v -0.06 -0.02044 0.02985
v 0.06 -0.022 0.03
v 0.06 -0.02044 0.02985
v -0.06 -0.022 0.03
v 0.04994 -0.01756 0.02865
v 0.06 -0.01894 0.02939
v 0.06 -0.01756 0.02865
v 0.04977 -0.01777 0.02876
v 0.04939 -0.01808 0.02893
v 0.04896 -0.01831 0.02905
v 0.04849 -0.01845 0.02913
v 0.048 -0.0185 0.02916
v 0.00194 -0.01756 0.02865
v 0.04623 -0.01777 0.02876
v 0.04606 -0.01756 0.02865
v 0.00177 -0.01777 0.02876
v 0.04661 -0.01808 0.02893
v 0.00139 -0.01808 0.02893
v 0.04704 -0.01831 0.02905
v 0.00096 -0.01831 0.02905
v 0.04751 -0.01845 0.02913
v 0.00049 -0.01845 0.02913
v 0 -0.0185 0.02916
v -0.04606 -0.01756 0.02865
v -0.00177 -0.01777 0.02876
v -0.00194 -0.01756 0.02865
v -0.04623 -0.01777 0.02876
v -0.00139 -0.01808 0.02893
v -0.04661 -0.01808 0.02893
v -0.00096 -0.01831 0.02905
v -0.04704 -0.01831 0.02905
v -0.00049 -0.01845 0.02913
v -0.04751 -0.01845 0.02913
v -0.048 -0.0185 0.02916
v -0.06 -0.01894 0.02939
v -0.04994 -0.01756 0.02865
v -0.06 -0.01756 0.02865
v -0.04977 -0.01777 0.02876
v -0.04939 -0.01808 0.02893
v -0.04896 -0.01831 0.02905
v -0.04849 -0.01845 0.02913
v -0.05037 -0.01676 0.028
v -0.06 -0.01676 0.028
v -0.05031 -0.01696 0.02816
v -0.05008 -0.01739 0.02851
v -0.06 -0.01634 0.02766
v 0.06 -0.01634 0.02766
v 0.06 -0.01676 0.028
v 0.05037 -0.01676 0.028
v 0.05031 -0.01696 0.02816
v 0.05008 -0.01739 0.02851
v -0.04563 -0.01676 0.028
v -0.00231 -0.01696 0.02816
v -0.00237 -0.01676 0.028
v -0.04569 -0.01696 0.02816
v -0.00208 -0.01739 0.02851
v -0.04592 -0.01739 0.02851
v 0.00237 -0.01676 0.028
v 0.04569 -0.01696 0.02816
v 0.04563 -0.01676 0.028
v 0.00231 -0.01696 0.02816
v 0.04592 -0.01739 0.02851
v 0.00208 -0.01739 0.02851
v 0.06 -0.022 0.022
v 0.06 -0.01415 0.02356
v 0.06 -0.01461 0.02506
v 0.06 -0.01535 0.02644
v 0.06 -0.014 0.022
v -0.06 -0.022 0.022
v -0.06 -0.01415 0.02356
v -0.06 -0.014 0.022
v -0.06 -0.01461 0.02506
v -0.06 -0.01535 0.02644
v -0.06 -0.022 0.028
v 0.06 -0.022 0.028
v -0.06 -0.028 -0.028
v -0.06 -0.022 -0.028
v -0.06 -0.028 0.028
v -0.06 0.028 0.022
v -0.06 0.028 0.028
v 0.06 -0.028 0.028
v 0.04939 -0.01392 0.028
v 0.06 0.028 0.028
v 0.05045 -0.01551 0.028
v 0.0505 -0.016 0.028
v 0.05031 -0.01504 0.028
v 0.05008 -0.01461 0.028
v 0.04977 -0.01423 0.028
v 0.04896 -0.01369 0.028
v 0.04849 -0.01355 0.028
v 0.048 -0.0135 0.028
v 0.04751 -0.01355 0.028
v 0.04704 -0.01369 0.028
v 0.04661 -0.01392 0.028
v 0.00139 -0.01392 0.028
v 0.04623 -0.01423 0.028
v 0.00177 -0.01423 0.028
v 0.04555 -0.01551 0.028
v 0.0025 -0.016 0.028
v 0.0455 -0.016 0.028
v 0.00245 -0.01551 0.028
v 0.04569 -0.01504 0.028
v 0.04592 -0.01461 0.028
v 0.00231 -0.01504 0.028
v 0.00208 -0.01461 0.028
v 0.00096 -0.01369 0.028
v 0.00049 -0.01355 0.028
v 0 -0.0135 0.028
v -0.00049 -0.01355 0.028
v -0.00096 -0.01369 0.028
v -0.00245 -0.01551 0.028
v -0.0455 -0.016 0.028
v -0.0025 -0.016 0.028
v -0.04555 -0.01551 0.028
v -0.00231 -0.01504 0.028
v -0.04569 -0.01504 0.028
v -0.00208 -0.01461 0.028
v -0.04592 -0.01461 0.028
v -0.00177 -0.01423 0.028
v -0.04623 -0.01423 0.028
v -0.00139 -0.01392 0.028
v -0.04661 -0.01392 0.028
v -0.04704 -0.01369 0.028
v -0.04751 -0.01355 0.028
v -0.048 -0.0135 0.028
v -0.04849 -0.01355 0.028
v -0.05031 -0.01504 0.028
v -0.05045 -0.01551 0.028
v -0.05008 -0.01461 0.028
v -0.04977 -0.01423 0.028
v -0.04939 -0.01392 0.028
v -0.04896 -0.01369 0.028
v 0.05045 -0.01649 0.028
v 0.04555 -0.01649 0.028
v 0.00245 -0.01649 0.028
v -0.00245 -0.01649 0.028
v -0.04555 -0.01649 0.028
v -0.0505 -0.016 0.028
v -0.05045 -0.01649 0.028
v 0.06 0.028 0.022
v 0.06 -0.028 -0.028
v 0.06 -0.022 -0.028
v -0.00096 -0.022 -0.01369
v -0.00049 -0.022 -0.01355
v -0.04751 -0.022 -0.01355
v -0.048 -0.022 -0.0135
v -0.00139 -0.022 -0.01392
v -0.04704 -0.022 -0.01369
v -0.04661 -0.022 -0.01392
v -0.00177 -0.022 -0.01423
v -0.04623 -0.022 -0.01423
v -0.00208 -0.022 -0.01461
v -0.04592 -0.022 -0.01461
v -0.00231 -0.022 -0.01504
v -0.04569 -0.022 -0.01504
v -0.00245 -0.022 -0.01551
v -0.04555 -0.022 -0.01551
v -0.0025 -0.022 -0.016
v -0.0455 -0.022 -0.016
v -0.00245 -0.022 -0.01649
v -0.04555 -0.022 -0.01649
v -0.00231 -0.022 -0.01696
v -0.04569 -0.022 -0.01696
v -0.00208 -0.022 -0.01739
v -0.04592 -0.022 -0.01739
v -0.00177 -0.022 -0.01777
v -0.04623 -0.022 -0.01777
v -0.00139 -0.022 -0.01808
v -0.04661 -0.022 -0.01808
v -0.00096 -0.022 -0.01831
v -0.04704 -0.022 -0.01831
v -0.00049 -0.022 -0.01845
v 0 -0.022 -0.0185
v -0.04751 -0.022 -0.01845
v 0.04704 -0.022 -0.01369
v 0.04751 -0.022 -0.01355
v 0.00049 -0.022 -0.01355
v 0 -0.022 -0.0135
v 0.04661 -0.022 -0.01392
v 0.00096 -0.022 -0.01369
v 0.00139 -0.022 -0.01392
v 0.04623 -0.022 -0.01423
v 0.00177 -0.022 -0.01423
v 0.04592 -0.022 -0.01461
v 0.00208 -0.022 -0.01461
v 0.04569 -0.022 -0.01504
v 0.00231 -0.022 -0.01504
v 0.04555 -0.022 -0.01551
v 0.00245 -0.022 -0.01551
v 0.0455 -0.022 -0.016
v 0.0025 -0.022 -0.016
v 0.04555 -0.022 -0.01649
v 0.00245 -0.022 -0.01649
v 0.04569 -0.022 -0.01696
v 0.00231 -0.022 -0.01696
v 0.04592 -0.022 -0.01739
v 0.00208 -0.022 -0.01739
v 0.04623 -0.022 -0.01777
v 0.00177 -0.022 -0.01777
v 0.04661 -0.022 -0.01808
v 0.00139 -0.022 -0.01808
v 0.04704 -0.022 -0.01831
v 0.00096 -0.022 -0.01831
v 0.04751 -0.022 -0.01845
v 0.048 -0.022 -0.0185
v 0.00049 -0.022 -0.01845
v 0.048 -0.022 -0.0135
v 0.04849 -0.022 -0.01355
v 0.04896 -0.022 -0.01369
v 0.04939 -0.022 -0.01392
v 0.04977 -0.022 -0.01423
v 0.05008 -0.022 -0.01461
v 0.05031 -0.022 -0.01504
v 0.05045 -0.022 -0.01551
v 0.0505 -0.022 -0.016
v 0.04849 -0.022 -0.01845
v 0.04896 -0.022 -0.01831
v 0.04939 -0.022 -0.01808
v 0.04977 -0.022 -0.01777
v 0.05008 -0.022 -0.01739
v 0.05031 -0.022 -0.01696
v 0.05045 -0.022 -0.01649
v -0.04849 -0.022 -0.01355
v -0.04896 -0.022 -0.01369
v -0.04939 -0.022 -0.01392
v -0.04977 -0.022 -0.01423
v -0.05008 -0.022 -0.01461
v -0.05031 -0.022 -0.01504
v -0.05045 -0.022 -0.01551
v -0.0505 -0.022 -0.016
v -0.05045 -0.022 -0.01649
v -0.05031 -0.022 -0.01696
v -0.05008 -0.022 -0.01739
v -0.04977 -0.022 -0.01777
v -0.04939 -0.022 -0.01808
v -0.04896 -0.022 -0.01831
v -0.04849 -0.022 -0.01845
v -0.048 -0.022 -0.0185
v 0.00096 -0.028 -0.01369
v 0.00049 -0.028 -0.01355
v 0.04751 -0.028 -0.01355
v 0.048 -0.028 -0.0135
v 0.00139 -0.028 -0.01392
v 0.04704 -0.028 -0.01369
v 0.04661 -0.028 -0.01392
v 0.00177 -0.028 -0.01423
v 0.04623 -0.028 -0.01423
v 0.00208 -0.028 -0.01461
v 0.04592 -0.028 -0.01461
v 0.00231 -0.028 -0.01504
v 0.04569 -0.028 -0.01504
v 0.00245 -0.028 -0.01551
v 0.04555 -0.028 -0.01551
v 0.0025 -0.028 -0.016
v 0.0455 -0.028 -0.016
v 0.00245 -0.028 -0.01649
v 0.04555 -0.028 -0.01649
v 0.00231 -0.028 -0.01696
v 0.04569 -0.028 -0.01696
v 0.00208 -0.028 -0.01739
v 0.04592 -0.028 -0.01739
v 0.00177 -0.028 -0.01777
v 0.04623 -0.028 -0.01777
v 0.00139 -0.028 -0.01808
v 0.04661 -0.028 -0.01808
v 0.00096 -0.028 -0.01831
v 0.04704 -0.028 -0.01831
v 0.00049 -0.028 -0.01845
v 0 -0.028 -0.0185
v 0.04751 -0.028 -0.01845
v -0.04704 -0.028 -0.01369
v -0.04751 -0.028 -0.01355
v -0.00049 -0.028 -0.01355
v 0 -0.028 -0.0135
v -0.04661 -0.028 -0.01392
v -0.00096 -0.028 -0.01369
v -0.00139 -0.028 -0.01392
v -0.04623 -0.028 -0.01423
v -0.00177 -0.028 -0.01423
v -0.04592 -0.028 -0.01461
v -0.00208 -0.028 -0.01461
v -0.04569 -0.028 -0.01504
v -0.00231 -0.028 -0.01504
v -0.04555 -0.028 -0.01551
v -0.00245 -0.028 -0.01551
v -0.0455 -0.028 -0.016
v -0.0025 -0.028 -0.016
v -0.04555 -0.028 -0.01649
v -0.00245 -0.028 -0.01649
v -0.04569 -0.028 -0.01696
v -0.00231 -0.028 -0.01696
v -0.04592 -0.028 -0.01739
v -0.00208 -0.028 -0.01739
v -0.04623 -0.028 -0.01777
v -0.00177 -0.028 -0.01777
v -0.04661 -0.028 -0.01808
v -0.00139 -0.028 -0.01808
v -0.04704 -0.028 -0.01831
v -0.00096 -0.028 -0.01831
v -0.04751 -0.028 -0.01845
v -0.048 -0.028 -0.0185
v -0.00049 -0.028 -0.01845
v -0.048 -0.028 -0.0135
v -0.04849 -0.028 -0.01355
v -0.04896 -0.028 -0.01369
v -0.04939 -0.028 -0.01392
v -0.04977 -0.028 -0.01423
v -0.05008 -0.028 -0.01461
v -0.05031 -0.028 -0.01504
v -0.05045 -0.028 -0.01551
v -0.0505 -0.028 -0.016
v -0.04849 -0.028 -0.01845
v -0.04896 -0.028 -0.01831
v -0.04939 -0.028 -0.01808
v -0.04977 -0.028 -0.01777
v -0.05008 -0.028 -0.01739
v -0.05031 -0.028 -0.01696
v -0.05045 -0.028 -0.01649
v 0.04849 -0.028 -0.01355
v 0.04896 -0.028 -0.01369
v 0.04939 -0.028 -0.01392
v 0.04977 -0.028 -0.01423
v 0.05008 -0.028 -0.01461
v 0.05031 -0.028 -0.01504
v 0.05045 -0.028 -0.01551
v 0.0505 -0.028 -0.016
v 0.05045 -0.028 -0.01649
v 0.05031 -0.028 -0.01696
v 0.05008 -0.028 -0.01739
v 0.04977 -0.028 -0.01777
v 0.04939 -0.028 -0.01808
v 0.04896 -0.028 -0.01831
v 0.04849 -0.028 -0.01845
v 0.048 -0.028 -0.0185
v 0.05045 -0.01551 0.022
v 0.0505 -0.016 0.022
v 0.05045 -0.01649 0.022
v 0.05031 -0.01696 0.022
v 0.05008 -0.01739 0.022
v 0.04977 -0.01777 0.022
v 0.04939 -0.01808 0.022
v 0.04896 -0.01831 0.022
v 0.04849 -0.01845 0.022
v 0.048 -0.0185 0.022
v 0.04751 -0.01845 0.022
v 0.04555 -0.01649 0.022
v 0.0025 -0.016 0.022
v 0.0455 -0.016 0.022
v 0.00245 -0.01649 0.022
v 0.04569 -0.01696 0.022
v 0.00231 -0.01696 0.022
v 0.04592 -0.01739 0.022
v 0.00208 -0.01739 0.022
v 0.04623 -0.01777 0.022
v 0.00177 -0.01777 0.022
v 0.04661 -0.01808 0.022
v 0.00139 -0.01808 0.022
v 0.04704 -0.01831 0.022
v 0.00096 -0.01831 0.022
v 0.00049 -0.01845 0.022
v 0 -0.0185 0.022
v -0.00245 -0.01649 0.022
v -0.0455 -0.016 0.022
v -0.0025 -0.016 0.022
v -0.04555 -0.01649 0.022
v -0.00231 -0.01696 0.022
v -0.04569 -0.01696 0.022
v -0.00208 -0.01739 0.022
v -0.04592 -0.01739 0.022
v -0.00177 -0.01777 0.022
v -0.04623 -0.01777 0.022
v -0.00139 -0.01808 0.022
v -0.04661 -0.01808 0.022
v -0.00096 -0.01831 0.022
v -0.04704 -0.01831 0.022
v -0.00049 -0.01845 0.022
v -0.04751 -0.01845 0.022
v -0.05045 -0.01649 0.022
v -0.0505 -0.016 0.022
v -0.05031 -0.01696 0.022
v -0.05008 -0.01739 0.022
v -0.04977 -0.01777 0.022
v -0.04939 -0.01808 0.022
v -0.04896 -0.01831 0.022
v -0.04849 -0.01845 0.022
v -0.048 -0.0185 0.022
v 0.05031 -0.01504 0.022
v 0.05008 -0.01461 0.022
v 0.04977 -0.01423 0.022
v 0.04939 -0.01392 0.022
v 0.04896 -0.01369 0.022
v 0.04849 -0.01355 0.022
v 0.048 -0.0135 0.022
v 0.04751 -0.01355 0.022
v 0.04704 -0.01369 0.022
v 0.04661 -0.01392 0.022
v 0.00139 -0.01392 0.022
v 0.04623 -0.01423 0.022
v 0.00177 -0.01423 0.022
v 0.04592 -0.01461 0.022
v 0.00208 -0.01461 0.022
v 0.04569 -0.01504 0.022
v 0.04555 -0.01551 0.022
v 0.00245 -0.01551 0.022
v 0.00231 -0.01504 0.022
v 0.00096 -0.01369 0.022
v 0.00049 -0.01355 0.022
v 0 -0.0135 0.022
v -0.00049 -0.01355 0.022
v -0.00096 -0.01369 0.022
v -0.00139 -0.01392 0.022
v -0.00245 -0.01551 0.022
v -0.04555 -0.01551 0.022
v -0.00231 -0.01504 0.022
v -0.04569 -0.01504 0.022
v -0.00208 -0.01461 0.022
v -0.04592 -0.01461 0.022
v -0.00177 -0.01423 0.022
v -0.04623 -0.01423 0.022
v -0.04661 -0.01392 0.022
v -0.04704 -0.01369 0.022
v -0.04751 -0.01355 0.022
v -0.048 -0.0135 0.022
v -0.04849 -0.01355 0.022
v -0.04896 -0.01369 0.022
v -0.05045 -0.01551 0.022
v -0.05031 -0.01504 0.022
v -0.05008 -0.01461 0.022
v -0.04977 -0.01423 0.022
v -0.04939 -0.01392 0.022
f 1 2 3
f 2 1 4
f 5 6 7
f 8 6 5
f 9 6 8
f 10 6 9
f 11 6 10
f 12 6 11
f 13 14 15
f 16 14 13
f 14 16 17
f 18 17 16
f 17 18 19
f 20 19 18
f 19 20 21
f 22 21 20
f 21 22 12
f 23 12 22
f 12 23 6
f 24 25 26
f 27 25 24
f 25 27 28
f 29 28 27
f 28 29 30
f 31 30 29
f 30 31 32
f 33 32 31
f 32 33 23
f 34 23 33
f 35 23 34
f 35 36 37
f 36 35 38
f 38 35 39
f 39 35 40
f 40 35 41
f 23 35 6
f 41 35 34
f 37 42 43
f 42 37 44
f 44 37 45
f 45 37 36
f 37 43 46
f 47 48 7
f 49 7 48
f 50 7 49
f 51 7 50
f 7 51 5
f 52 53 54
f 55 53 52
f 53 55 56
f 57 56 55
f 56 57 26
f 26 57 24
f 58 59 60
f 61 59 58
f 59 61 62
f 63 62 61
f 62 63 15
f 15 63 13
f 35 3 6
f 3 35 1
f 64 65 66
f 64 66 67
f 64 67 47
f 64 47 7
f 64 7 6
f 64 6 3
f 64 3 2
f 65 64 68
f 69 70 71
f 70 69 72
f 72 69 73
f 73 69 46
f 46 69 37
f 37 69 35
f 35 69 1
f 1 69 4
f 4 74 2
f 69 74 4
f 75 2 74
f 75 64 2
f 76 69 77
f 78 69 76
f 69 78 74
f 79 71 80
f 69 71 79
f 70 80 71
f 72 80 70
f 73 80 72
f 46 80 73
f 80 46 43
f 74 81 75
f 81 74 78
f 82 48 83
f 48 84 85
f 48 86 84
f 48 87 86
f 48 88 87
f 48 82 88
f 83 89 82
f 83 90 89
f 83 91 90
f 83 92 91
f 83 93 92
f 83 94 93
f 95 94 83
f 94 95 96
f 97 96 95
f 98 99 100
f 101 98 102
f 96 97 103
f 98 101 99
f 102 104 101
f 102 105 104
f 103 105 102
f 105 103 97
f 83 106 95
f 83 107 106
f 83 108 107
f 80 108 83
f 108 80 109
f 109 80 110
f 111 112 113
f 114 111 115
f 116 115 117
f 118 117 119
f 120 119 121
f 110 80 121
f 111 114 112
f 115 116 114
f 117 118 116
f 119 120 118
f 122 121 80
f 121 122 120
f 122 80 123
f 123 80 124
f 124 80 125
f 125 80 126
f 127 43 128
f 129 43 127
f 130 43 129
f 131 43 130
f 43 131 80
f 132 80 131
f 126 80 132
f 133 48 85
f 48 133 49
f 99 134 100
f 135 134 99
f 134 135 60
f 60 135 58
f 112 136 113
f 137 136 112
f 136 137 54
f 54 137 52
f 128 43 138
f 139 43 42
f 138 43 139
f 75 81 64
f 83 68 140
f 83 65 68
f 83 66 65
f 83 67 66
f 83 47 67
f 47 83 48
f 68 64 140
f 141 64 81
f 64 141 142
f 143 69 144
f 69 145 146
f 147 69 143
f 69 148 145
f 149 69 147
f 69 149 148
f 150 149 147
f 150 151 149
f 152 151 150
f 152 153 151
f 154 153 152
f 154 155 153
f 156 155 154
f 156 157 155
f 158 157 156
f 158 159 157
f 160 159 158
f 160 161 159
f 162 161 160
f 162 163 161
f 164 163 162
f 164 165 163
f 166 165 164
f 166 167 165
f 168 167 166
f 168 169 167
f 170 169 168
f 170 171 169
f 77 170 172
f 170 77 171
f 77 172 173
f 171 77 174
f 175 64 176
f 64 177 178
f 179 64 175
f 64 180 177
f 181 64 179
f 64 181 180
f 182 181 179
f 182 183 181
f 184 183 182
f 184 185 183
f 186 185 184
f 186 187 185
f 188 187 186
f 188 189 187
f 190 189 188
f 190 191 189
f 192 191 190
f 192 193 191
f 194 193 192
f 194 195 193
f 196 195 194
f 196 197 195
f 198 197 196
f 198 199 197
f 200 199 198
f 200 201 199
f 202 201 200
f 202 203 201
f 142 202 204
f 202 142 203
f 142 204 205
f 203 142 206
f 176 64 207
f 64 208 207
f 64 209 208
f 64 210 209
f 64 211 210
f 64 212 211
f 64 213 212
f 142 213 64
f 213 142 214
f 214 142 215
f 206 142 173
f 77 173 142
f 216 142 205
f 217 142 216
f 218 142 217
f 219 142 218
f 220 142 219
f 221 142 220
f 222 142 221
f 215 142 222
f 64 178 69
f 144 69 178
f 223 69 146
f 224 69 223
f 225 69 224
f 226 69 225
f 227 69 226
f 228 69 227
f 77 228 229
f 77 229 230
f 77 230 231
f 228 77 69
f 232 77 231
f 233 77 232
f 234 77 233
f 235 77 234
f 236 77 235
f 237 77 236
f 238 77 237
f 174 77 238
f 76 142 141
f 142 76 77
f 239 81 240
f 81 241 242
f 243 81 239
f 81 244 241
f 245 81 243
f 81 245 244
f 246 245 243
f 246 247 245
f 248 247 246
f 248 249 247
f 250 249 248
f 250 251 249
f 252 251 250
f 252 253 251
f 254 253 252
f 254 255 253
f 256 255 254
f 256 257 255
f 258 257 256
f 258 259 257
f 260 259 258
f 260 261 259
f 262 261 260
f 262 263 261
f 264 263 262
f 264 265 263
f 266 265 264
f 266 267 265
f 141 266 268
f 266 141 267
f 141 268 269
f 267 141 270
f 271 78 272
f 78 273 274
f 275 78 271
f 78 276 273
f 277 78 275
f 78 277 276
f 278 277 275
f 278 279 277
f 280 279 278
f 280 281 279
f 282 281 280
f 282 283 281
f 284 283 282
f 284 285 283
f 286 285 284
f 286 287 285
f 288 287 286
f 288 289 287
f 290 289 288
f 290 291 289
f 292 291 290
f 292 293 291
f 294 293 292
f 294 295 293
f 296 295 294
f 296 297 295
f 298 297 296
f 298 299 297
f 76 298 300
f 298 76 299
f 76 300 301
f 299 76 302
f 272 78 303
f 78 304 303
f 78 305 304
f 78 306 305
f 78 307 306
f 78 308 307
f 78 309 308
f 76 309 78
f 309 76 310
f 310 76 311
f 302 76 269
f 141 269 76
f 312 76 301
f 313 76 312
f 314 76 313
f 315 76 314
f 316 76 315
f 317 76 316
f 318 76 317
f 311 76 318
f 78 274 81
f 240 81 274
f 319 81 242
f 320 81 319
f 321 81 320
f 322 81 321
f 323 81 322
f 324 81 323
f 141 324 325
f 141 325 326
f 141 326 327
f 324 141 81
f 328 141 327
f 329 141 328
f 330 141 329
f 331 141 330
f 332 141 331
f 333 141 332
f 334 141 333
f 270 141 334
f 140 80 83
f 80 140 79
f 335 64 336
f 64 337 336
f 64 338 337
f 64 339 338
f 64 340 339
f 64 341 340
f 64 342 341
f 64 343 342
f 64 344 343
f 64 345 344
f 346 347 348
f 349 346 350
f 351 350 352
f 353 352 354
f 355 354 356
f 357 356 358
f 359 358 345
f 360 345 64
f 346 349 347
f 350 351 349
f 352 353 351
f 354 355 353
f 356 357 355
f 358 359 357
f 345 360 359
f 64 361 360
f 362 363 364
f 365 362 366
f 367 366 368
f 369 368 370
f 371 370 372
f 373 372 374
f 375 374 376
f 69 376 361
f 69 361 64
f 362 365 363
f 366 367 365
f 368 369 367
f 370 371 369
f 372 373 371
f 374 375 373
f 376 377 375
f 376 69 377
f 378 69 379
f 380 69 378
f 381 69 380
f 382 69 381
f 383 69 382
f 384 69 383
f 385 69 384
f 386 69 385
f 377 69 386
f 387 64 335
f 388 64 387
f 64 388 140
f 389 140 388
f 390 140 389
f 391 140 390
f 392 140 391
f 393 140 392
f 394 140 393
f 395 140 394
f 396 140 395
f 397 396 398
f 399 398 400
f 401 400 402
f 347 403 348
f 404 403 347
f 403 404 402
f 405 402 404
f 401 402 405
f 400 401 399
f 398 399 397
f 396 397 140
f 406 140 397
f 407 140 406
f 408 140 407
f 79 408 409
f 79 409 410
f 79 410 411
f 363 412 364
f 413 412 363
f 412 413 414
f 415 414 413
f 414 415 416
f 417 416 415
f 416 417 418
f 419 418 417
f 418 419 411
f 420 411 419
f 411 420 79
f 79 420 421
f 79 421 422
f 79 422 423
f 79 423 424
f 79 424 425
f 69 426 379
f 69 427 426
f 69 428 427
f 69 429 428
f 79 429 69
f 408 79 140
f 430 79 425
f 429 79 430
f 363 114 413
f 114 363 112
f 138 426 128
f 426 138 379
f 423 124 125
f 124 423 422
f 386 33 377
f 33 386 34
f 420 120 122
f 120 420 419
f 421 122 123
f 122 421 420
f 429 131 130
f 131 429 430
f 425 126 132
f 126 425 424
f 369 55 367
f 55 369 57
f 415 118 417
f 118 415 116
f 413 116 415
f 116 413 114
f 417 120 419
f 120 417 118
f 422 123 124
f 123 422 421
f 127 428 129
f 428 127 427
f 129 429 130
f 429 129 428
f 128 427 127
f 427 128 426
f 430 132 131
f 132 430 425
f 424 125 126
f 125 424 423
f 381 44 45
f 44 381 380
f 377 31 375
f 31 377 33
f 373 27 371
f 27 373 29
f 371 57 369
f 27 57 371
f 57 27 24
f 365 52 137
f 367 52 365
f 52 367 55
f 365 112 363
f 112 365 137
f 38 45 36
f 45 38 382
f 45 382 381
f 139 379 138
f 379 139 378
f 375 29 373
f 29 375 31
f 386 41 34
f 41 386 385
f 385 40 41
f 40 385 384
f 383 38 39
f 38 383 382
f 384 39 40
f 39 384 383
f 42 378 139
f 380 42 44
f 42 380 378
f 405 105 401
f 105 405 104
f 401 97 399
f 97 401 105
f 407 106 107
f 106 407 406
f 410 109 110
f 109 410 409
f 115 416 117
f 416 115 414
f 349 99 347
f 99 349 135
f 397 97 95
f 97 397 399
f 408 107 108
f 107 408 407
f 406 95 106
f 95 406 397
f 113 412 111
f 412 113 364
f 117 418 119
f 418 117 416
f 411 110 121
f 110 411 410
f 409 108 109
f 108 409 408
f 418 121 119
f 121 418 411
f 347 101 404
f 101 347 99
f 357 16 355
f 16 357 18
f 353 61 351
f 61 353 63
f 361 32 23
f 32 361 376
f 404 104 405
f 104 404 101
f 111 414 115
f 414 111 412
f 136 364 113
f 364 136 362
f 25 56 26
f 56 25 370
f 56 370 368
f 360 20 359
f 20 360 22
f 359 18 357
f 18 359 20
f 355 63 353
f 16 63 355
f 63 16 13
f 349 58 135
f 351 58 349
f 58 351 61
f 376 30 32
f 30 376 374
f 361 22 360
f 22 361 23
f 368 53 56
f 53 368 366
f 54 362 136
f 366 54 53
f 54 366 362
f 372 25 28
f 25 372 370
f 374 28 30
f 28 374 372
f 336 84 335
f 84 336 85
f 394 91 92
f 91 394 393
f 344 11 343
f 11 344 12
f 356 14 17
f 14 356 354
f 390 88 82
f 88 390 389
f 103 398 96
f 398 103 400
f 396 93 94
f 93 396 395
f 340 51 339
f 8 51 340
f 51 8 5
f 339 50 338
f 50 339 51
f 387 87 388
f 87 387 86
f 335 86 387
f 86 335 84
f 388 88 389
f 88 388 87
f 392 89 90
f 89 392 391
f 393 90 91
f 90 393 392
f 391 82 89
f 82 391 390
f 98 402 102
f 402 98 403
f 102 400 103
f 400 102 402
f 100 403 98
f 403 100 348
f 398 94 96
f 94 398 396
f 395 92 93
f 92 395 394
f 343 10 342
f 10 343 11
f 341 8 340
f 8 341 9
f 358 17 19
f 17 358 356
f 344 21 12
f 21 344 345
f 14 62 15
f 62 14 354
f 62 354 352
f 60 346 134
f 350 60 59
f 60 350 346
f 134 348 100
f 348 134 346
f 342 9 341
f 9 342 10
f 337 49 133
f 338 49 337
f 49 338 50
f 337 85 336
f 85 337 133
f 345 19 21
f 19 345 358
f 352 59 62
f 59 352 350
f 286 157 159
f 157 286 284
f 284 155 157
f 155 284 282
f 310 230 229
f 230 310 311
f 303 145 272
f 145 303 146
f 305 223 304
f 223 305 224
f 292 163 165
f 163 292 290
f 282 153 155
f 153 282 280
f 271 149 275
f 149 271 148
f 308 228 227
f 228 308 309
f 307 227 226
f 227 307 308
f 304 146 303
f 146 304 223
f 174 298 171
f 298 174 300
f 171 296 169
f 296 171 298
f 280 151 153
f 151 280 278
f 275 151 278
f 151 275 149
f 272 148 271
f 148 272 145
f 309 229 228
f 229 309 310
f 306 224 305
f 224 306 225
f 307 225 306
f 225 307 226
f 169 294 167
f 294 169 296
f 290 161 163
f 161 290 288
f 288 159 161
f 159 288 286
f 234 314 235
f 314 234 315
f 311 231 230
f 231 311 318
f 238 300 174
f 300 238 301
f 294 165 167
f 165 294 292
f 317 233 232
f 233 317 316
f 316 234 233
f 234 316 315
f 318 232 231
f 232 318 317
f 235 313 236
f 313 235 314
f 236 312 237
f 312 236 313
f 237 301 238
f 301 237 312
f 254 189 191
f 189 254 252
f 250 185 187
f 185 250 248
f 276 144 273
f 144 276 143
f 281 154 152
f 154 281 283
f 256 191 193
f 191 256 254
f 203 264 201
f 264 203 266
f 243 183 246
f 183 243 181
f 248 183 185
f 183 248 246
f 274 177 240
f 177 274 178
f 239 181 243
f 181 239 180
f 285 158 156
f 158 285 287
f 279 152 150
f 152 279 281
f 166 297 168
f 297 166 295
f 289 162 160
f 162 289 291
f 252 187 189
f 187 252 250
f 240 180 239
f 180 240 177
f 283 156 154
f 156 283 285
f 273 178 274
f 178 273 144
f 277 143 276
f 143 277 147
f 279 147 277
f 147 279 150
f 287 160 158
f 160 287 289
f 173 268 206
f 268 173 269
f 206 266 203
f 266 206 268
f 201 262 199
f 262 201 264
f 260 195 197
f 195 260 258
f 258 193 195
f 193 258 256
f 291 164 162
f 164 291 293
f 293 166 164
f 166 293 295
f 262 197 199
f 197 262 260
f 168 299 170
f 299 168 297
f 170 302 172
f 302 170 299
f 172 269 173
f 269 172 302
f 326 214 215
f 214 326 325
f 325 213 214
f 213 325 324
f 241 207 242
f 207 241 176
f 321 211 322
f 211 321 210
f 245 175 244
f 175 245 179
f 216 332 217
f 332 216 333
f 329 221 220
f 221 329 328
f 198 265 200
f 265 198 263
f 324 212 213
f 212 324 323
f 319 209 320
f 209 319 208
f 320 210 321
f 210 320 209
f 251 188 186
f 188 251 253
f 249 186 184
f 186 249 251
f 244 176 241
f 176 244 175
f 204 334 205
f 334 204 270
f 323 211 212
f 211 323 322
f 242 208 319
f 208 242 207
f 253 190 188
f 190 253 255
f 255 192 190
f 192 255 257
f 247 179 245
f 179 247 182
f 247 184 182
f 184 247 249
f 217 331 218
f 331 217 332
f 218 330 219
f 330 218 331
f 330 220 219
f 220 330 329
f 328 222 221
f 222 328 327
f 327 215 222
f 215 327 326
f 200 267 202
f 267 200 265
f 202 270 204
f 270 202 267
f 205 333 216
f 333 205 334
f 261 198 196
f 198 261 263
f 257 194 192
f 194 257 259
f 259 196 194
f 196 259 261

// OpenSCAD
// ── L-Shaped Mounting Bracket ──────────────────────────────────────────────
// Units: meters.  Origin centred on the bracket's bounding-box mid-point.
// +Y = up,  +Z = forward.

// ── Key parameters ─────────────────────────────────────────────────────────
width          = 0.12;    // overall width (X)  – ~12 cm
flange_h       = 0.050;   // height of the vertical flange (Y)
base_d         = 0.050;   // depth  of the horizontal base leg (Z)
thickness      = 0.006;   // material thickness of both legs
hole_dia       = 0.005;   // screw-hole diameter
hole_inset     = 0.012;   // distance from outer edge to hole centre
fillet_r       = 0.008;   // corner fillet radius (chunkier than before)
fn             = 32;      // cylinder facets

// ── Derived ────────────────────────────────────────────────────────────────
total_y = flange_h + thickness;
total_z = base_d   + thickness;

// Shift so bounding box is centred on origin
ox = -width / 2;
oy = -total_y / 2;
oz = -total_z / 2;

// Inner-corner fillet: sits at the junction of the two legs on the inside
// The fillet is a quarter-round rod spanning the full width (X axis).
// It occupies the concave corner: Y = oy (bottom of flange base),
// Z = oz + total_z - thickness (back face of base leg = front face of flange).
module corner_fillet() {
    // A cylinder lying along X, radius = fillet_r, trimmed to a quarter circle
    // by intersecting with a cube that fills the inner-corner quadrant.
    translate([ox, oy + thickness, oz + total_z - thickness])
    intersection() {
        // Full cylinder along X
        rotate([0, 90, 0])
            cylinder(r = fillet_r, h = width, $fn = fn);
        // Keep only the quadrant that fills the concave corner
        // (+Y, -Z relative to the cylinder axis)
        cube([width, fillet_r, fillet_r]);
    }
}

module bracket() {
    union() {
        // ── Horizontal base leg (lies in XZ plane, at the bottom) ──────────
        translate([ox, oy, oz])
            cube([width, thickness, total_z]);

        // ── Vertical flange (rises in Y from the back edge of base leg) ────
        translate([ox, oy, oz + total_z - thickness])
            cube([width, total_y, thickness]);

        // ── Inner-corner fillet ────────────────────────────────────────────
        corner_fillet();
    }
}

module screw_holes() {
    // ── Three holes on the vertical flange ─────────────────────────────────
    // Positions: left, centre, right
    for (sx = [-1, 0, 1]) {
        x_pos = (sx == 0) ? 0 : sx * (width / 2 - hole_inset);
        translate([x_pos,
                   oy + hole_inset,
                   oz + total_z + 0.001])
            cylinder(h = thickness * 2 + 0.002,
                     d = hole_dia,
                     center = true,
                     $fn = fn);
    }

    // ── Three holes on the horizontal base leg ──────────────────────────────
    for (sx = [-1, 0, 1]) {
        x_pos = (sx == 0) ? 0 : sx * (width / 2 - hole_inset);
        translate([x_pos,
                   oy - 0.001,
                   oz + hole_inset])
            rotate([90, 0, 0])
            cylinder(h = thickness * 2 + 0.002,
                     d = hole_dia,
                     center = true,
                     $fn = fn);
    }
}

difference() {
    bracket();
    screw_holes();
}
